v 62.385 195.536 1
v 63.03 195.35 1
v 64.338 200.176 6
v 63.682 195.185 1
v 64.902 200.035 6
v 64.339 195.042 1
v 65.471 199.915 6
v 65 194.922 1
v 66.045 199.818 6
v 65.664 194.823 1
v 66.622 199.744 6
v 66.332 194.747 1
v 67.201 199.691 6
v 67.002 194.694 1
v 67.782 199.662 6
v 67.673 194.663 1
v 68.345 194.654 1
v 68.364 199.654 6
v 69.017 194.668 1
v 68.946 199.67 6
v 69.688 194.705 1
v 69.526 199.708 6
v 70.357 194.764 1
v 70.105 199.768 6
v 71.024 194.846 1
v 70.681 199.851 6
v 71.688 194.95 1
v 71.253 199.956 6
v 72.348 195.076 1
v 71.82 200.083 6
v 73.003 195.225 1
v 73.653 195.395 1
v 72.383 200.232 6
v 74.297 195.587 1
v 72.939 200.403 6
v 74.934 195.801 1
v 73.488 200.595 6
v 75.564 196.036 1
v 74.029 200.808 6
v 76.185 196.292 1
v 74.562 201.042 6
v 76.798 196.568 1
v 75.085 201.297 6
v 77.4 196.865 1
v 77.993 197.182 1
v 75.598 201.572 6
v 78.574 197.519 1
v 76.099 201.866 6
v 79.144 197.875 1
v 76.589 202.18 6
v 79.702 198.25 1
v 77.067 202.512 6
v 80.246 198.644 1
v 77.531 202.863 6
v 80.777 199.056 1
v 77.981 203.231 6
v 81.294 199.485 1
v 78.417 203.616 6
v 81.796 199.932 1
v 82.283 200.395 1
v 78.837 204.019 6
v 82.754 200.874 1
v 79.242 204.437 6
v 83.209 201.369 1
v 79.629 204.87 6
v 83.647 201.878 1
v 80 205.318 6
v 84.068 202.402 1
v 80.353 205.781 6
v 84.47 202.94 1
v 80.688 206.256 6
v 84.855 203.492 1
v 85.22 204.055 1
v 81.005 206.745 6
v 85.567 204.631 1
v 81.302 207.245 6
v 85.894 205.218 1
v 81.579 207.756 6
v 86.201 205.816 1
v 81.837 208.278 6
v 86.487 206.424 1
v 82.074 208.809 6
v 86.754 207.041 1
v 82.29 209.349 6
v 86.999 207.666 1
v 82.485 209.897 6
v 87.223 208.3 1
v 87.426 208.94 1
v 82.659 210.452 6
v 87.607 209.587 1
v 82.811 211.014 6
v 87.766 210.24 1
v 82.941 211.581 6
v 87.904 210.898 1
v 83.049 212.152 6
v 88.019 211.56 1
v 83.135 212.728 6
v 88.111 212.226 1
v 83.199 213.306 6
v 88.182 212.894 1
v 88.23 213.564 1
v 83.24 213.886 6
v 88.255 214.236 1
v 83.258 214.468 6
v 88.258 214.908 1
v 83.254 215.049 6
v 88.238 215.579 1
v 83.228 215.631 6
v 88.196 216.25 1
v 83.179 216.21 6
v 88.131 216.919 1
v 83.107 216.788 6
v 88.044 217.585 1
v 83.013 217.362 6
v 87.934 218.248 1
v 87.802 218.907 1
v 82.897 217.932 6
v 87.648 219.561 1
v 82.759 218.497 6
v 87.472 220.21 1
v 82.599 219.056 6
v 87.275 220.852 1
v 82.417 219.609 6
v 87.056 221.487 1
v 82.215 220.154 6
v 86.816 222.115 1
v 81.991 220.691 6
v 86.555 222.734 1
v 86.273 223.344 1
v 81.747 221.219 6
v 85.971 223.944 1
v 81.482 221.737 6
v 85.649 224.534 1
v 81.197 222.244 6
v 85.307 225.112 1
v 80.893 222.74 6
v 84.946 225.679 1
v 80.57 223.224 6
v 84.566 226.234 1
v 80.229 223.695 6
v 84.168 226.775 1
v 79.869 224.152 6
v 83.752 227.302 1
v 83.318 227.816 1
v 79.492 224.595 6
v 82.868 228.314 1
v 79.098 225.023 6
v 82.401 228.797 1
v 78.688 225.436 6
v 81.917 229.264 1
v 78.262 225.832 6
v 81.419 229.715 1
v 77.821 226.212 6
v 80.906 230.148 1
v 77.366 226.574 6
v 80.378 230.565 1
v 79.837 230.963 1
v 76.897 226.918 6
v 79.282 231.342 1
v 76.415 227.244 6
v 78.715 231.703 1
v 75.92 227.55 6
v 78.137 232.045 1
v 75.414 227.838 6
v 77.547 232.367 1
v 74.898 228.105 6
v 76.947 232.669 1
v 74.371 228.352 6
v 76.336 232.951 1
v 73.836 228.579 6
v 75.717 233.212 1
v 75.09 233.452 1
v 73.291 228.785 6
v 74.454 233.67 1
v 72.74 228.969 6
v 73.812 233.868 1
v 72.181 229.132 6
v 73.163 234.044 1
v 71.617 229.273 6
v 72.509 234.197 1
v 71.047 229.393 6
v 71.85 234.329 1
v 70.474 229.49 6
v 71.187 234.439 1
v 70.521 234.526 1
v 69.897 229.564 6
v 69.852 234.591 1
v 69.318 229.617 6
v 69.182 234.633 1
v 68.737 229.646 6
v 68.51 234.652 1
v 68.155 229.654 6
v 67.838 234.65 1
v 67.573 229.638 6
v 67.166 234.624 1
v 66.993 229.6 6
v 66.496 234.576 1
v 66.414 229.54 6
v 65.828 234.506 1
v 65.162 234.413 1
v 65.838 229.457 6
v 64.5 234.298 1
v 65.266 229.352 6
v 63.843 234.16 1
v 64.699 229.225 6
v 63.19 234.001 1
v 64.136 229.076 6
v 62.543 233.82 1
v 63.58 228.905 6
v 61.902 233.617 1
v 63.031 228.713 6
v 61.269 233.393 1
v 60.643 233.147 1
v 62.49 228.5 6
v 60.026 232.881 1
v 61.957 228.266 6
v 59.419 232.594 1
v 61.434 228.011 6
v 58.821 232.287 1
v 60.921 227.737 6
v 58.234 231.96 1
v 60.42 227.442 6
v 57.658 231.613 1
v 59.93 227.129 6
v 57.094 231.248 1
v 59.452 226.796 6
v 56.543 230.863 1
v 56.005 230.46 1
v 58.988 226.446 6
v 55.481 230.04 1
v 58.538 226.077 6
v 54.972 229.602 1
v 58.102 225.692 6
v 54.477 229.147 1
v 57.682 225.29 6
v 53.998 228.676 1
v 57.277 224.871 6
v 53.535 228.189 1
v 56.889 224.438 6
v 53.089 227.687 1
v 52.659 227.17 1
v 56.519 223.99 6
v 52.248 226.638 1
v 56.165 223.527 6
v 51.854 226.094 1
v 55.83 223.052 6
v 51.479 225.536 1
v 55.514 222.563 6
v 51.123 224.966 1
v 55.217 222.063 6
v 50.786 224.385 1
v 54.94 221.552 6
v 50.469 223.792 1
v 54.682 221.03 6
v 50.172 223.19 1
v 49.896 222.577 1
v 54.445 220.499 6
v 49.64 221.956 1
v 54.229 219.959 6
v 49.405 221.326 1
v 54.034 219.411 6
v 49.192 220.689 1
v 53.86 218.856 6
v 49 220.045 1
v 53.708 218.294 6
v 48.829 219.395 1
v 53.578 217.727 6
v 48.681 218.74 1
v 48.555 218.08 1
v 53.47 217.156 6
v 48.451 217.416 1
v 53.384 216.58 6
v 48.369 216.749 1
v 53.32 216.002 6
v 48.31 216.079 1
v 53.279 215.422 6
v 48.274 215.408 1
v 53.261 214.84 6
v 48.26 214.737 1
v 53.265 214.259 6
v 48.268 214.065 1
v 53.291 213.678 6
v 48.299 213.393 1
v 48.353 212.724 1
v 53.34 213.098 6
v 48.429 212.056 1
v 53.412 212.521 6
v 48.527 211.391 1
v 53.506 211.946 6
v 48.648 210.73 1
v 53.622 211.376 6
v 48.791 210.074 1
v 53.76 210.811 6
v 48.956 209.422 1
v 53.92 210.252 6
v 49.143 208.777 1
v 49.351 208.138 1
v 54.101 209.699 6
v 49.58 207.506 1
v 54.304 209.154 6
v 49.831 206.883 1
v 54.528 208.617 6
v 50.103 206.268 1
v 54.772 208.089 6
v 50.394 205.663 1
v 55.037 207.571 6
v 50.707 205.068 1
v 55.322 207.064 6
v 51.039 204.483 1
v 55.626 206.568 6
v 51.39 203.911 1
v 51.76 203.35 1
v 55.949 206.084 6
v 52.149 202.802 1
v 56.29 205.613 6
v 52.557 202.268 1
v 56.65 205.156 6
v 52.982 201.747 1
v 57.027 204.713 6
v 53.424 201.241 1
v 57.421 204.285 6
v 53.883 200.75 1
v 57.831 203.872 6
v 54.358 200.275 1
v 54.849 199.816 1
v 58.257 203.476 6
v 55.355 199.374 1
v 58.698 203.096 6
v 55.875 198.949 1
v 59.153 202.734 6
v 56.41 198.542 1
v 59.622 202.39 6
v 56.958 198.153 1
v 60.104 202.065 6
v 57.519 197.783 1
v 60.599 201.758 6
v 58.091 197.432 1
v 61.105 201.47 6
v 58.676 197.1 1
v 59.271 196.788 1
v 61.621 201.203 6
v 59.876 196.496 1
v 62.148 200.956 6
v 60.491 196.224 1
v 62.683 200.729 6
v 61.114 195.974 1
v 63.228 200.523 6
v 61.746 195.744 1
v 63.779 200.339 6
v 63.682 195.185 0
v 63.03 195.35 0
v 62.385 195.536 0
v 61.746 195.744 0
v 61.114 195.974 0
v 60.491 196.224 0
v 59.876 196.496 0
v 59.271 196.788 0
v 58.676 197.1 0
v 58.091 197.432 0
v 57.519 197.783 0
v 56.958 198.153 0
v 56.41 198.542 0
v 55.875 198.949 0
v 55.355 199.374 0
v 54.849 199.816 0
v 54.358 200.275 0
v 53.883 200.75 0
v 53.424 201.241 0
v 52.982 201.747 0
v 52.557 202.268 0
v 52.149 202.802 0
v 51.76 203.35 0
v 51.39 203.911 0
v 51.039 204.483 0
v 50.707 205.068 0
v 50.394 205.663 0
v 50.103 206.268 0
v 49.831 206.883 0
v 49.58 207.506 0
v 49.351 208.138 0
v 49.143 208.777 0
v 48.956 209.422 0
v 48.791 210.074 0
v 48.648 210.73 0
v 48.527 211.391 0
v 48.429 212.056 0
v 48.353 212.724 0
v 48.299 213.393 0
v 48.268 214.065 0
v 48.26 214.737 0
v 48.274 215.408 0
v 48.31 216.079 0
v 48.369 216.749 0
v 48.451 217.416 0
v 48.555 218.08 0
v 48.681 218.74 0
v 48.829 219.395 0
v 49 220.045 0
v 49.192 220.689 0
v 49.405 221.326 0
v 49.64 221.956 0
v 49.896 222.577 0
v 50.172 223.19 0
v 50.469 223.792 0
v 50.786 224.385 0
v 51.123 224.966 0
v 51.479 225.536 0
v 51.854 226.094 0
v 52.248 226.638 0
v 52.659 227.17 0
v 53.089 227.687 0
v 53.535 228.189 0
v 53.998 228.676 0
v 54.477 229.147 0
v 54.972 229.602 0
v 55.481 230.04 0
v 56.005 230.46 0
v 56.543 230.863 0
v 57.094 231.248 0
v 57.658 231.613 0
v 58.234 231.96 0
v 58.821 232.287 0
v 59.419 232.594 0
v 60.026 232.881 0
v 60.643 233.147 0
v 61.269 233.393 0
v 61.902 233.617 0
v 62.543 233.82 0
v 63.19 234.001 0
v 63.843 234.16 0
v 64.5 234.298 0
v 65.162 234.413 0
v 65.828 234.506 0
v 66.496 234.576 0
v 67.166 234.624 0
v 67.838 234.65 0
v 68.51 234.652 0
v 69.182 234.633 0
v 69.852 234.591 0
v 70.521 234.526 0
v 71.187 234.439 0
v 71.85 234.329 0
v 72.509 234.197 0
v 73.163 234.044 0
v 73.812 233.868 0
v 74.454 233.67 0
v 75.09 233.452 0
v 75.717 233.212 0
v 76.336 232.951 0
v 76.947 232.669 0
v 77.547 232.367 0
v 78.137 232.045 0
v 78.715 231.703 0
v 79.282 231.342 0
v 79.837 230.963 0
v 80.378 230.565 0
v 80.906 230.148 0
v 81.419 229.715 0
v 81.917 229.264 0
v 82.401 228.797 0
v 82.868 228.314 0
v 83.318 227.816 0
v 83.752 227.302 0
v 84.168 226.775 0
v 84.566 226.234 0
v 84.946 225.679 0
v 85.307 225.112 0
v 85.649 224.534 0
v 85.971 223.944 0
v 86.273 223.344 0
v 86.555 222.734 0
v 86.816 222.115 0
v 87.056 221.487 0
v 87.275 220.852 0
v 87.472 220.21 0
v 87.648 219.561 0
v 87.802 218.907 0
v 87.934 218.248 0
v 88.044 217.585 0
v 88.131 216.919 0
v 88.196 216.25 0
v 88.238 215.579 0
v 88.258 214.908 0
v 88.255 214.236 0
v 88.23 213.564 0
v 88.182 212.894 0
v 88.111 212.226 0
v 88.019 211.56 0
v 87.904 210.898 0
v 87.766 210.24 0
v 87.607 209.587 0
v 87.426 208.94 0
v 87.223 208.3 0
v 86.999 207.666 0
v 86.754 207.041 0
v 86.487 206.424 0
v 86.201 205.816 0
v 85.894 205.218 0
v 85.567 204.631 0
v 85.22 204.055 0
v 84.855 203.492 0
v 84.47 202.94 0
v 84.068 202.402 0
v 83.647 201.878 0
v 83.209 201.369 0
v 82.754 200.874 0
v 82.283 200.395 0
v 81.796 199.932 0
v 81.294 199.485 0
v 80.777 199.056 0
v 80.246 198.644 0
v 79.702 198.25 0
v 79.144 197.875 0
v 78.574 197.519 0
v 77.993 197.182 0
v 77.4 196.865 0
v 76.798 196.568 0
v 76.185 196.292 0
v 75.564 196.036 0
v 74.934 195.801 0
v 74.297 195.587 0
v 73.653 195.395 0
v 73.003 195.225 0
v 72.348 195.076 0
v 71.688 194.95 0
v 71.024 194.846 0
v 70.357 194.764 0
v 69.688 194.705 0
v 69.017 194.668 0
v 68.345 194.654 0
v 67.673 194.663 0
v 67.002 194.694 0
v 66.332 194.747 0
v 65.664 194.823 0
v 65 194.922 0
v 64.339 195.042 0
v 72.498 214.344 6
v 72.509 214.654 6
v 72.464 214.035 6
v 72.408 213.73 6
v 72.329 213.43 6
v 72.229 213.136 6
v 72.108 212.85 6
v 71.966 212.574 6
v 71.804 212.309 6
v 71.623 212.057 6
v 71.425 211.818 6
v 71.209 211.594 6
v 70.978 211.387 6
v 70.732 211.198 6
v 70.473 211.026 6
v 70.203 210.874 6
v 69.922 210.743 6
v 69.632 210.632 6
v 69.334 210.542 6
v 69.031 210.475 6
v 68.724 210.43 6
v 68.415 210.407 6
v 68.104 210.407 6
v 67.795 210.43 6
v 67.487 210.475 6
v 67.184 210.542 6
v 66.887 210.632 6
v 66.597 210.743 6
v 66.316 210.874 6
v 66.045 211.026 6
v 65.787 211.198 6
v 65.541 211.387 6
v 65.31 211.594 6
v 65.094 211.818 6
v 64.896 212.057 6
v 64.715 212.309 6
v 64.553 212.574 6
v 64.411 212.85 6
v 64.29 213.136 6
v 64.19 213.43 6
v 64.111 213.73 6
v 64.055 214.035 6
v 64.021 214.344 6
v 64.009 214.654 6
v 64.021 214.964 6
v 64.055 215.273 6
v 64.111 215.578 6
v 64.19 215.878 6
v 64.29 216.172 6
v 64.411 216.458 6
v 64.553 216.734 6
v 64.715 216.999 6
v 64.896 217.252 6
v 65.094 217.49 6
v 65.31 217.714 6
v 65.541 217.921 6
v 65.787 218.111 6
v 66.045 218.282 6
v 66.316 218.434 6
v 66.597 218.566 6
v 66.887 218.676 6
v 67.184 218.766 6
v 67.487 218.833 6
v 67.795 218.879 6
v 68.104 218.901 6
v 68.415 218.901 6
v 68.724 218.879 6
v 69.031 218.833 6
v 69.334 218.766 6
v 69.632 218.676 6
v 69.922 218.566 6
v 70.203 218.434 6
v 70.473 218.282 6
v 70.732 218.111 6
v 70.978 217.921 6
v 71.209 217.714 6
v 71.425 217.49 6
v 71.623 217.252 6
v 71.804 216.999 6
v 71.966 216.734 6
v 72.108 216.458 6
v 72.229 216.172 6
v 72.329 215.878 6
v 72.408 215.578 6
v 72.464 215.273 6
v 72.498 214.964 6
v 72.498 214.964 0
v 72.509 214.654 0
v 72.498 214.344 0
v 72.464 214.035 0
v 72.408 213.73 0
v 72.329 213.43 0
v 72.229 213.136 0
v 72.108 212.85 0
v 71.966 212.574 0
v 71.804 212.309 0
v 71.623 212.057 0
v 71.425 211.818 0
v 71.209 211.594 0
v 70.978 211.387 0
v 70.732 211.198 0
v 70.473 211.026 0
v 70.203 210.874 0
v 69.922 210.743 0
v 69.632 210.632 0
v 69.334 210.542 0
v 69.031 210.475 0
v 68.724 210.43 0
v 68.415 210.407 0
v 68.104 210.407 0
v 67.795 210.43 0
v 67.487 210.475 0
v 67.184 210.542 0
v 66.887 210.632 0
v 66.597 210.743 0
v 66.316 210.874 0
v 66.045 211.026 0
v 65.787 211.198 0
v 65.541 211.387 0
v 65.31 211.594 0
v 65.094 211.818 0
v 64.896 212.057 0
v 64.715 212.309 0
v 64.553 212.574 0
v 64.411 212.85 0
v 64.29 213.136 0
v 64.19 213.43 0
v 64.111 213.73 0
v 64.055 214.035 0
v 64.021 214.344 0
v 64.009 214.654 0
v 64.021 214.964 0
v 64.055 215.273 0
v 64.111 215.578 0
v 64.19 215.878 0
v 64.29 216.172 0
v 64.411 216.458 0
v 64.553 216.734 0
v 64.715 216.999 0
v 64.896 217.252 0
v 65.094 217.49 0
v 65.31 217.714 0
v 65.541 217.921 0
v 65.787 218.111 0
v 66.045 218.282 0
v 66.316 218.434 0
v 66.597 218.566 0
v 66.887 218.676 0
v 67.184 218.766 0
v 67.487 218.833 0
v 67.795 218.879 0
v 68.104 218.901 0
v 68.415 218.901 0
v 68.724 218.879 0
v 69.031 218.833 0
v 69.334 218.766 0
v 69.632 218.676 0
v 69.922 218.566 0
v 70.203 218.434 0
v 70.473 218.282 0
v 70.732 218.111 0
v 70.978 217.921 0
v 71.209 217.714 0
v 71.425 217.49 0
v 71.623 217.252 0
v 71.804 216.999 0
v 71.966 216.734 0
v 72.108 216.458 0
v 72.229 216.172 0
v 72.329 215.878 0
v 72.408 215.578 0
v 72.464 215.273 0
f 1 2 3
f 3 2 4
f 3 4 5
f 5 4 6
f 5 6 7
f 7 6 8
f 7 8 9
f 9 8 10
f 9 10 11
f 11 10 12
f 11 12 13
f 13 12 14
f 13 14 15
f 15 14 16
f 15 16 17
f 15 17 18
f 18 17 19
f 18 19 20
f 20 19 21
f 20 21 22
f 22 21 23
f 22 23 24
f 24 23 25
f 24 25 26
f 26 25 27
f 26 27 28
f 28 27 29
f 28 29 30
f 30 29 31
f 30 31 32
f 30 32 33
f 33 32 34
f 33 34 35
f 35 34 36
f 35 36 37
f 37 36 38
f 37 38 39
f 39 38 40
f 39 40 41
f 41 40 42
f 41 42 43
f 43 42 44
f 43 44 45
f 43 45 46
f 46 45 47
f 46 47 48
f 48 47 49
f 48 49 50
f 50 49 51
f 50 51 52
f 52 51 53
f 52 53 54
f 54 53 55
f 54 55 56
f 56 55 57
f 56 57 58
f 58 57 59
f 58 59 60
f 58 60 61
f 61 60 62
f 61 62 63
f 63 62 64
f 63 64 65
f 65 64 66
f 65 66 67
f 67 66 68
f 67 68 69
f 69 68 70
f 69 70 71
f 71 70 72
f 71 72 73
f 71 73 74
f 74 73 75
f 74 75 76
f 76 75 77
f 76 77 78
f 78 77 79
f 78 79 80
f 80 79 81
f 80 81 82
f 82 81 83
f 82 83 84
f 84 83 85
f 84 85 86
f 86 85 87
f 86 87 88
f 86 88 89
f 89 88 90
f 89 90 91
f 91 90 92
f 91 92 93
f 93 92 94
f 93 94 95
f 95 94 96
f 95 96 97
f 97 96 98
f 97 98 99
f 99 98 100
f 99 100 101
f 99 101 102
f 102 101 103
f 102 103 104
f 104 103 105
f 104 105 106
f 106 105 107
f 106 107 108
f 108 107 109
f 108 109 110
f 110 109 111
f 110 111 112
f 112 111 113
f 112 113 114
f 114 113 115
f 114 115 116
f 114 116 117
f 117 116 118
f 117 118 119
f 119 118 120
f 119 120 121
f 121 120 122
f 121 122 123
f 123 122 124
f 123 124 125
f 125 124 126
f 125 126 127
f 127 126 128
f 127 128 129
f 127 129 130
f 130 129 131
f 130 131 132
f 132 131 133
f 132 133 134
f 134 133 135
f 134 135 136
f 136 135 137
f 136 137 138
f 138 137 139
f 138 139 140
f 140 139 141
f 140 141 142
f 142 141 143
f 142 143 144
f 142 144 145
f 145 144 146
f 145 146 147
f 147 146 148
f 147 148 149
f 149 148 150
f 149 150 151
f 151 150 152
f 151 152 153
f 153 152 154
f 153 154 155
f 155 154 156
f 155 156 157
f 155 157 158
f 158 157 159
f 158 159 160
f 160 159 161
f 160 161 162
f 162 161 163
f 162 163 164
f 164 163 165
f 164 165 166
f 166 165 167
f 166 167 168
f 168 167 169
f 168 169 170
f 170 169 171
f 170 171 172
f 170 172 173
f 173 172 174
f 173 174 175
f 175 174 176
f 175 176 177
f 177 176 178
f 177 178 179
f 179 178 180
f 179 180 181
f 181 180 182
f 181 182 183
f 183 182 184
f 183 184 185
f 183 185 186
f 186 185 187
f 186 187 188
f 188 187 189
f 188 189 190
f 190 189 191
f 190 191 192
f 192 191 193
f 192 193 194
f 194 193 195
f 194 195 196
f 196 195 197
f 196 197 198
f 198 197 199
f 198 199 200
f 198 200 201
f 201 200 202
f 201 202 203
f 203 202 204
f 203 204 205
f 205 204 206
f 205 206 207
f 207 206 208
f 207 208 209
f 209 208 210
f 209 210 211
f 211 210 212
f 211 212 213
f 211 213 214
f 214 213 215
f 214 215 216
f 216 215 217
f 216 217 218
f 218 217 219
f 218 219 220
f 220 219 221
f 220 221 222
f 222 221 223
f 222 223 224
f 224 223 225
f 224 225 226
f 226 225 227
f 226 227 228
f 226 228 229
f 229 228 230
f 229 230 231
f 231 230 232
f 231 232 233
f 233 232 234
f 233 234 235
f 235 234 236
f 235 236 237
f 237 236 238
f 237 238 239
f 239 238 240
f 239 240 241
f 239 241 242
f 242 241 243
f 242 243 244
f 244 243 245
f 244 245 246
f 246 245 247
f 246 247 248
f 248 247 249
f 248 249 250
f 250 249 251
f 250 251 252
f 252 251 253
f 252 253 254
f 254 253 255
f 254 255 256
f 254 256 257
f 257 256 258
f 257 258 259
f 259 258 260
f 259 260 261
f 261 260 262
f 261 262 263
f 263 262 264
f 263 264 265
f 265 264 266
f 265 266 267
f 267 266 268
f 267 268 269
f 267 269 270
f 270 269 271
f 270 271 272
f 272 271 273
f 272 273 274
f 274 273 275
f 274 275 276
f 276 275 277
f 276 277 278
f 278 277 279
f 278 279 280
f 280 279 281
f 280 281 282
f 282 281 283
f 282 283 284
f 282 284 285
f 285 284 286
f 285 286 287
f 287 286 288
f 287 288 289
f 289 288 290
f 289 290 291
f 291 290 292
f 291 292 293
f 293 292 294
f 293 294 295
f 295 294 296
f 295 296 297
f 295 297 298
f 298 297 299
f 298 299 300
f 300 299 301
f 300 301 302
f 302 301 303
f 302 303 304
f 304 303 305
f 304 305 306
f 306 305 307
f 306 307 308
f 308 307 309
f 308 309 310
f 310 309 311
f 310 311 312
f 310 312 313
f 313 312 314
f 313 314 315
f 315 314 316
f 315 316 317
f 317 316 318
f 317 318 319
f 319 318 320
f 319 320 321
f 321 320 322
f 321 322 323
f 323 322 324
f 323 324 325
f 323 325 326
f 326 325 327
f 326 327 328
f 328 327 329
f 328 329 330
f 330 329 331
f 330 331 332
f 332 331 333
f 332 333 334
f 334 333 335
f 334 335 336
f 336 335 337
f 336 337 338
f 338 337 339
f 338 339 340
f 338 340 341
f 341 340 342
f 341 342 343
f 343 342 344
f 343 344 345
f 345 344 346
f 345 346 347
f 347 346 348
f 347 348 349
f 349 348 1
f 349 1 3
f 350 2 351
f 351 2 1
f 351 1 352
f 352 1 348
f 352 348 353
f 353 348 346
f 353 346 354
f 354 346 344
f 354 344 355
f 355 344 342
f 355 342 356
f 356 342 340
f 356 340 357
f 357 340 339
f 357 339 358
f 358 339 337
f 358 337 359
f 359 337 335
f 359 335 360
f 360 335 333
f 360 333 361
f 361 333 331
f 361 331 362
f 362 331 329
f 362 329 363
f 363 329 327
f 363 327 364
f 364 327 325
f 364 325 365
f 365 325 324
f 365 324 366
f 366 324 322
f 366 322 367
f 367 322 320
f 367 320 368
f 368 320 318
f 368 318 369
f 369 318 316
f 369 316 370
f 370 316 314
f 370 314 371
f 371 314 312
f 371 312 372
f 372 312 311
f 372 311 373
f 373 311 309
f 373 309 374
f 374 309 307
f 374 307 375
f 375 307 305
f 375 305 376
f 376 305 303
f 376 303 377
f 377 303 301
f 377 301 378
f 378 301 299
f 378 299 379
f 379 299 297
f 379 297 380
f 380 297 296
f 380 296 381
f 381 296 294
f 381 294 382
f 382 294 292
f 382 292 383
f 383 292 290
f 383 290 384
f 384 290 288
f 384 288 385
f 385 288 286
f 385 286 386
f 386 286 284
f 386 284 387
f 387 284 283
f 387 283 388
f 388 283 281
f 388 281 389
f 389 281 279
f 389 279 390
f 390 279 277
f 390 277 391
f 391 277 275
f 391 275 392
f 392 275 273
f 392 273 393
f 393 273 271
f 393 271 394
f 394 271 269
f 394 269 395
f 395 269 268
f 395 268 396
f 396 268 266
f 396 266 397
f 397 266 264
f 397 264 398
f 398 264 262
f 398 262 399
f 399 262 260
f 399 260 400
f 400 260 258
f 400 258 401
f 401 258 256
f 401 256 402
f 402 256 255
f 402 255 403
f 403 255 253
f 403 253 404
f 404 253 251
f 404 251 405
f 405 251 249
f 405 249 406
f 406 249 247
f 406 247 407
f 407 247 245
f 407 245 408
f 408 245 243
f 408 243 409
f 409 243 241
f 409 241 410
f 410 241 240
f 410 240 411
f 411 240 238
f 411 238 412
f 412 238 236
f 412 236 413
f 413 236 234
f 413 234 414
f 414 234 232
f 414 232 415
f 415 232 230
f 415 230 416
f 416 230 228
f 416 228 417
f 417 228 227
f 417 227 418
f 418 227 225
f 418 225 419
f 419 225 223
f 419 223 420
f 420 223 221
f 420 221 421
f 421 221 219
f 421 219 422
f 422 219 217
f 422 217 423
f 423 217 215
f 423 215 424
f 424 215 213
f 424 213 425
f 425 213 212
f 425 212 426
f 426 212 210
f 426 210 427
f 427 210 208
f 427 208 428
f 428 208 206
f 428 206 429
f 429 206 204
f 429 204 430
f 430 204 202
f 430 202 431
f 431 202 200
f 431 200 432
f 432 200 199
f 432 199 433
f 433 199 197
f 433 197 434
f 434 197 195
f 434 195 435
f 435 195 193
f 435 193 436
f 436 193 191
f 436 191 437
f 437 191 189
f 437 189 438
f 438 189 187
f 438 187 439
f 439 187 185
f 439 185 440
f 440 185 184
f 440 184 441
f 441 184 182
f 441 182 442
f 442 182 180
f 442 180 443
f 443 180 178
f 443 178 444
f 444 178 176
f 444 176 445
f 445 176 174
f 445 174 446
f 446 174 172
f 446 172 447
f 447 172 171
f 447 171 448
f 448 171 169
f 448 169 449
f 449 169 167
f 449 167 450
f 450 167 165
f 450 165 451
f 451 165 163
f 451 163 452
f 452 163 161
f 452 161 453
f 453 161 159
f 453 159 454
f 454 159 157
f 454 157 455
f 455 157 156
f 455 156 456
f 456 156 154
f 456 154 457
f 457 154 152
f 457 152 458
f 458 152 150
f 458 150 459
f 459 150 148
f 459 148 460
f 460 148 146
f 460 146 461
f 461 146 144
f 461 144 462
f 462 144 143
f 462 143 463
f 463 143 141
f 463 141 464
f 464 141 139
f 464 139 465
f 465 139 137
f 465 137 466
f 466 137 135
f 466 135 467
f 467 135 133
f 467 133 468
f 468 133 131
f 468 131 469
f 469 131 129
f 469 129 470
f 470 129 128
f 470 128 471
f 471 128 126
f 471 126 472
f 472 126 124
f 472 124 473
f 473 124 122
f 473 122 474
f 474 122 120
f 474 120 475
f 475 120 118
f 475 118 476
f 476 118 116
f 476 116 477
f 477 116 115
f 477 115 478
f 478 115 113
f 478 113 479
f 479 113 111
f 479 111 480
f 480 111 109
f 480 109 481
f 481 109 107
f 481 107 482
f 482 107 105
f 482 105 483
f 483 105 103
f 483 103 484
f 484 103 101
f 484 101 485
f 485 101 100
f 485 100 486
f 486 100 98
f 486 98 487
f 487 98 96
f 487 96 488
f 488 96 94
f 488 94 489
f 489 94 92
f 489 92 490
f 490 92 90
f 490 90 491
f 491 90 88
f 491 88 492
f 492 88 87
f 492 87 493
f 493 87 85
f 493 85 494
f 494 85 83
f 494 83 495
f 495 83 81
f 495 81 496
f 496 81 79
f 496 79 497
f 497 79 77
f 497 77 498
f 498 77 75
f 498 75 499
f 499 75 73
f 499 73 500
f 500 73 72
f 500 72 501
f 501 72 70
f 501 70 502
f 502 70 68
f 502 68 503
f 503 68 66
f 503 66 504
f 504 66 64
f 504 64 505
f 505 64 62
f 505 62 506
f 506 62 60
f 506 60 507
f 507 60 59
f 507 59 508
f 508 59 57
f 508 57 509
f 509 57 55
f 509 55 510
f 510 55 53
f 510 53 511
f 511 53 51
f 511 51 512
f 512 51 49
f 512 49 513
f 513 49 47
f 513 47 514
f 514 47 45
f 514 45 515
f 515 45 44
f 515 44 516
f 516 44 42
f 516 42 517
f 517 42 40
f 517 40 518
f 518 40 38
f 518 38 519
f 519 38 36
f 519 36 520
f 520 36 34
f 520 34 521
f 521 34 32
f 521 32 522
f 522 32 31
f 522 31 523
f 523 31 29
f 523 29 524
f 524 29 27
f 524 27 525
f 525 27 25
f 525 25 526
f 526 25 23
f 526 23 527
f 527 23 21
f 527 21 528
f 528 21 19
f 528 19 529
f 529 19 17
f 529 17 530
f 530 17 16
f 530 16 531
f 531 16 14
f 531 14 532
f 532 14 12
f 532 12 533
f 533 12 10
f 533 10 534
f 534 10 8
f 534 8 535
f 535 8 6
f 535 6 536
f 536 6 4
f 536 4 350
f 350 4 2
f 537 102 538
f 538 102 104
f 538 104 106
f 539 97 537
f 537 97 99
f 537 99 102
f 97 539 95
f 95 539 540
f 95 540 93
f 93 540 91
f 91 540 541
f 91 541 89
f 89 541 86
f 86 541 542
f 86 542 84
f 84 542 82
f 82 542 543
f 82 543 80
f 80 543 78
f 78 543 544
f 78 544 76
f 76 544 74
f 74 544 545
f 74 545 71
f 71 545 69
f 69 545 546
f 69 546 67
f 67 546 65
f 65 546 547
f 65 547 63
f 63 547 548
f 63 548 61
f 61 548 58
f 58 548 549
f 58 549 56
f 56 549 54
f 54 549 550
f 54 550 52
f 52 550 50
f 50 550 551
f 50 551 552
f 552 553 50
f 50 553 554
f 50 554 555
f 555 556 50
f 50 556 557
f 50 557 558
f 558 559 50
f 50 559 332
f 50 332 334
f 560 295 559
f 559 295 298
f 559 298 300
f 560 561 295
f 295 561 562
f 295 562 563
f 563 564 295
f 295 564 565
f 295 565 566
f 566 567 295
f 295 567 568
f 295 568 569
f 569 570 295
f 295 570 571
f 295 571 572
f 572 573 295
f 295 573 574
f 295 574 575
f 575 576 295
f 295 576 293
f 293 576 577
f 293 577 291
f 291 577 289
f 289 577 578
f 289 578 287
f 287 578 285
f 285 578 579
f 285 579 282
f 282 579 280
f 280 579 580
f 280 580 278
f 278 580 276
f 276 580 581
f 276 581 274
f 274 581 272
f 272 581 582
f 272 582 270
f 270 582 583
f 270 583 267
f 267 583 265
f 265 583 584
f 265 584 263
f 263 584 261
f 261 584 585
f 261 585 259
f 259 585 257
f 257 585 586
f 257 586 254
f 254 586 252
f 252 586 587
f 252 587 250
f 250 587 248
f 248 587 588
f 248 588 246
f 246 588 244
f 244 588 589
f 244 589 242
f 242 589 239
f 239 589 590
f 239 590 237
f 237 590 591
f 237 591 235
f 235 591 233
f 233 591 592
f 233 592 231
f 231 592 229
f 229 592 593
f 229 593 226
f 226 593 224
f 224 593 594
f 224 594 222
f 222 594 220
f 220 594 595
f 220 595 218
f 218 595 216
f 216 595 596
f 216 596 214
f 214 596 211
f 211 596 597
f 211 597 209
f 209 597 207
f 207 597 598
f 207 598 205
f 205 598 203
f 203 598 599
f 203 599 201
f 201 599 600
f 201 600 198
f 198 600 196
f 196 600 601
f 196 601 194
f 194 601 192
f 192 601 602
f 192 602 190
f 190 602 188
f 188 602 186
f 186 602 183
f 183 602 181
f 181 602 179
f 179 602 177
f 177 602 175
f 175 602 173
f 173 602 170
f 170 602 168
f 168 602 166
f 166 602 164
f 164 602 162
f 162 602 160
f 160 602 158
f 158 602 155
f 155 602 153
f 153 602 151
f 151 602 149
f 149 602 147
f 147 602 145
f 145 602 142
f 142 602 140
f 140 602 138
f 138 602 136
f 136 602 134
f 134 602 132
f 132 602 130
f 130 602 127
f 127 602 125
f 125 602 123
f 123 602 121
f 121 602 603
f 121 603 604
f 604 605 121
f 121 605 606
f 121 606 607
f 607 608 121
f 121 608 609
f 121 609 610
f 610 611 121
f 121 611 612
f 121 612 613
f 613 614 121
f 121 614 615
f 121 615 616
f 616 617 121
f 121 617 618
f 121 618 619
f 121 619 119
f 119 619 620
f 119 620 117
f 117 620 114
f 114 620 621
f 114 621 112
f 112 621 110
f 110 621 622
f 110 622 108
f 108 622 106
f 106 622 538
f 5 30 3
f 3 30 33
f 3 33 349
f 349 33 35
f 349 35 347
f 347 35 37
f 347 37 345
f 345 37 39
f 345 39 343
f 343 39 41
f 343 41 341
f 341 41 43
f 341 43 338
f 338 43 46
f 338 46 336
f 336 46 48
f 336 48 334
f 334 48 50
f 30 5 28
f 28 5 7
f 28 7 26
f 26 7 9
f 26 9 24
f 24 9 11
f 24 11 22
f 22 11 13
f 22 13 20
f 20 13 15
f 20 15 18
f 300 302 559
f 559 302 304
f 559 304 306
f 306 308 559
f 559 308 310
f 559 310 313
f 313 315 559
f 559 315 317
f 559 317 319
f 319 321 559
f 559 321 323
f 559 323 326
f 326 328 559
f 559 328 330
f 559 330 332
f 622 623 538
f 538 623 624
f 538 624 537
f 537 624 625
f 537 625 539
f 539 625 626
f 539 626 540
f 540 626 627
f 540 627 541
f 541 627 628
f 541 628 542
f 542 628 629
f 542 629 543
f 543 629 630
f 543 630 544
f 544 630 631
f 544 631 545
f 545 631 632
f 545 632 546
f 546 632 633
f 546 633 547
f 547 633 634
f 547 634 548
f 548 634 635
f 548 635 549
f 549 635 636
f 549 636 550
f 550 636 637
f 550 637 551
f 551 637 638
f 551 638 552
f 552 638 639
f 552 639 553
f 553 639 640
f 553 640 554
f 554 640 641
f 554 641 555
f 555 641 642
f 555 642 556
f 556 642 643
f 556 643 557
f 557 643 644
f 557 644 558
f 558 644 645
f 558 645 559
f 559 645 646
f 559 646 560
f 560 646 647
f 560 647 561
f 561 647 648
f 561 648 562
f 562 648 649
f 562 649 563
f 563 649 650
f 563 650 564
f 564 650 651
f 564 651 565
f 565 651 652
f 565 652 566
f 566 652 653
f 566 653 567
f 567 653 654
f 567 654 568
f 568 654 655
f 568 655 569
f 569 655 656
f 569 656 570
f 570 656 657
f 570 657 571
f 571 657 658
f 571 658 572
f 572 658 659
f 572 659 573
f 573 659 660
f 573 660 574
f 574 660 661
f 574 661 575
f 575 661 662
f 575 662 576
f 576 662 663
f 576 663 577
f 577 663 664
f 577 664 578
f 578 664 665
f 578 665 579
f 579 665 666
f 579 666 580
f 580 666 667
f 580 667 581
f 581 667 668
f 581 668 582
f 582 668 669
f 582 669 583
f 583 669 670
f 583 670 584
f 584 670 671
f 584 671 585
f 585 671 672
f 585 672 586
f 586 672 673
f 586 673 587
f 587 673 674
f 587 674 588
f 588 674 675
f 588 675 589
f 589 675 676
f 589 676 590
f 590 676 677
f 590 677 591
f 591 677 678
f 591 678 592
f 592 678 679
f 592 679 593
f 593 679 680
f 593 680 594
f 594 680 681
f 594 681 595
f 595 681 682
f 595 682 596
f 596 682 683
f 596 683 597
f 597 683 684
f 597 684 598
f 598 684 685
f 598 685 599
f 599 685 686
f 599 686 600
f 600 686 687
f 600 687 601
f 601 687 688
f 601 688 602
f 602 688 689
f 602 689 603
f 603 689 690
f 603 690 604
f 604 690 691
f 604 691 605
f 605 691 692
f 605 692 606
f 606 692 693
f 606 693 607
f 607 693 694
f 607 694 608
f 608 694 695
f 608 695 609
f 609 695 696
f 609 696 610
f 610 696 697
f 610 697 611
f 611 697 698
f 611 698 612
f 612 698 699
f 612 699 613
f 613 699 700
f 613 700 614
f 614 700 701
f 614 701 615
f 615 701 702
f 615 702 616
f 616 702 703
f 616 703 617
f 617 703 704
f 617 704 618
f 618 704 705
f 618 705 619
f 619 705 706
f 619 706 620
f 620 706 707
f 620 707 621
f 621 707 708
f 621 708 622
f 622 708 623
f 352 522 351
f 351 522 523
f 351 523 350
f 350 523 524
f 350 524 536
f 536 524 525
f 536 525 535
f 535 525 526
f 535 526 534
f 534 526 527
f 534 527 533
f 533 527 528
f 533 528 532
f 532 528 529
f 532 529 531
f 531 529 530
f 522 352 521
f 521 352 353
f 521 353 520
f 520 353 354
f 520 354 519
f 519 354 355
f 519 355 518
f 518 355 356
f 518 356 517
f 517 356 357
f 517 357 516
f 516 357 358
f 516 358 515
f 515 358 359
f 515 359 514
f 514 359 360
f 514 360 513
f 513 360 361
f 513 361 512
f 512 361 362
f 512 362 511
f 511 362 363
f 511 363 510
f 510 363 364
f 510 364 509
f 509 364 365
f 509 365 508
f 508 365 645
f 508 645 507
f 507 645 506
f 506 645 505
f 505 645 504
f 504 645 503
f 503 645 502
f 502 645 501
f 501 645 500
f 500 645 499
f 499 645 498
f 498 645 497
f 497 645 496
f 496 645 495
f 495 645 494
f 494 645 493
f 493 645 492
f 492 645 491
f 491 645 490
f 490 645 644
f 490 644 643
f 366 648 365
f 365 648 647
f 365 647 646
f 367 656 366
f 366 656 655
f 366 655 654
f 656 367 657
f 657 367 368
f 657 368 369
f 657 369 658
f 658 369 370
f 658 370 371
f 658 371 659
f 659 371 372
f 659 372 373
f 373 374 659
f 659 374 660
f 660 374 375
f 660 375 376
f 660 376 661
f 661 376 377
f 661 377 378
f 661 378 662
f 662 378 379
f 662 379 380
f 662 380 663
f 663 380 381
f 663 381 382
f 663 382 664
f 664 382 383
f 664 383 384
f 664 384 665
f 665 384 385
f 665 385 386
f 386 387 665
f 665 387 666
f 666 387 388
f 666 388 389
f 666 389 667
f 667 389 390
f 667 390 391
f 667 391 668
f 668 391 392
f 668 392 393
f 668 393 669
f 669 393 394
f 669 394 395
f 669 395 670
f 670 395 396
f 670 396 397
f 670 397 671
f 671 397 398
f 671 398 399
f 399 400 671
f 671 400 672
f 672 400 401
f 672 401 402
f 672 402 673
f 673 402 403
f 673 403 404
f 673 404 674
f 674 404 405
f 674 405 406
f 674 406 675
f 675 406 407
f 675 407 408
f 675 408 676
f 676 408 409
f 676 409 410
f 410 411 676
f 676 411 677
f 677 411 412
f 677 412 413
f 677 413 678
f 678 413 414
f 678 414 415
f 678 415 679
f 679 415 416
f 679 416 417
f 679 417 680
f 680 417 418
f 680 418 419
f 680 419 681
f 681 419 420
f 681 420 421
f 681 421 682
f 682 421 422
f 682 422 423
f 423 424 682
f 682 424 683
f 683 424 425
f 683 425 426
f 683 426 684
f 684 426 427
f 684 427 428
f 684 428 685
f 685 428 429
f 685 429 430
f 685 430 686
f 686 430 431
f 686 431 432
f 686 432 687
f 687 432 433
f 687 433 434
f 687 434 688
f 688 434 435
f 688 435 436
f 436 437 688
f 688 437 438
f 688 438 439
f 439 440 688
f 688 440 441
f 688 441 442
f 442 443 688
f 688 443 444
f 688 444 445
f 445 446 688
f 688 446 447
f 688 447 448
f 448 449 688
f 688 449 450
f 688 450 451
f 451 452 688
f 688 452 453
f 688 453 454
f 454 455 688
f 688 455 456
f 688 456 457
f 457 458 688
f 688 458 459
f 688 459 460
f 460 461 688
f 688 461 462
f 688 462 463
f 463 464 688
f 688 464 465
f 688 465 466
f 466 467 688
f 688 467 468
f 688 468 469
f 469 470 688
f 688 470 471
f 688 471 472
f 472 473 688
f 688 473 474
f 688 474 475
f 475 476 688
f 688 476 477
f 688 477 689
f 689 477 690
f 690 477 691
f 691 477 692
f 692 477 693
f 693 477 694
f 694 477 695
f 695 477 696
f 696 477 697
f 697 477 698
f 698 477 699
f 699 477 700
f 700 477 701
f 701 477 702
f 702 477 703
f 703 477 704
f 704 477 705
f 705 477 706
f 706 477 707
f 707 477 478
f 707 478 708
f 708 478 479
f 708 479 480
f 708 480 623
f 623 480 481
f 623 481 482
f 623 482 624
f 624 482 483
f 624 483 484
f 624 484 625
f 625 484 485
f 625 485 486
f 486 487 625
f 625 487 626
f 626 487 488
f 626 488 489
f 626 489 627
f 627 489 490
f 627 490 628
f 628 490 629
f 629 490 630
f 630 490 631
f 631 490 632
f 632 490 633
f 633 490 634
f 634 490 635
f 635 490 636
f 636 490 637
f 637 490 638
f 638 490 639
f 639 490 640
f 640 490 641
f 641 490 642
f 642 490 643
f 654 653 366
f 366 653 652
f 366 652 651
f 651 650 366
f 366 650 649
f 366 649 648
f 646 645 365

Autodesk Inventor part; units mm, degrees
ref_plane "YZ Plane" through (0, 0, 0) normal (1, 0, 0) x (0, 1, 0)
ref_plane "XZ Plane" through (0, 0, 0) normal (0, 1, 0) x (-1, 0, 0)
ref_plane "Work Plane1" through (0, 0, 0) normal (0, 0, 1) x (1, 0, 0)
sketch "Sketch1" plane through (0, 0, 0) normal (0, 0, 1) x (1, 0, 0)
  arc A0 (63.0305, 195.3497) -> (48.9551, 209.4251) centre (68.2595, 214.6541) ccw
  circle A1 centre (68.2595, 214.6541) radius 4.25
  circle A2 centre (68.2595, 214.6541) radius 20
  point P0 (0, 0)
  point P1 (28.2595, 174.6541)
  dimension "d1" = 40
  dimension "d2" = 8.5
extrude "Extrusion1" add sketch "Sketch1" along normal blind 6
chamfer "Chamfer1" distance 5 angle 45 1 edges at (82.4016, 228.7962, 6)
properties part number "plastic_wheel_washer"
